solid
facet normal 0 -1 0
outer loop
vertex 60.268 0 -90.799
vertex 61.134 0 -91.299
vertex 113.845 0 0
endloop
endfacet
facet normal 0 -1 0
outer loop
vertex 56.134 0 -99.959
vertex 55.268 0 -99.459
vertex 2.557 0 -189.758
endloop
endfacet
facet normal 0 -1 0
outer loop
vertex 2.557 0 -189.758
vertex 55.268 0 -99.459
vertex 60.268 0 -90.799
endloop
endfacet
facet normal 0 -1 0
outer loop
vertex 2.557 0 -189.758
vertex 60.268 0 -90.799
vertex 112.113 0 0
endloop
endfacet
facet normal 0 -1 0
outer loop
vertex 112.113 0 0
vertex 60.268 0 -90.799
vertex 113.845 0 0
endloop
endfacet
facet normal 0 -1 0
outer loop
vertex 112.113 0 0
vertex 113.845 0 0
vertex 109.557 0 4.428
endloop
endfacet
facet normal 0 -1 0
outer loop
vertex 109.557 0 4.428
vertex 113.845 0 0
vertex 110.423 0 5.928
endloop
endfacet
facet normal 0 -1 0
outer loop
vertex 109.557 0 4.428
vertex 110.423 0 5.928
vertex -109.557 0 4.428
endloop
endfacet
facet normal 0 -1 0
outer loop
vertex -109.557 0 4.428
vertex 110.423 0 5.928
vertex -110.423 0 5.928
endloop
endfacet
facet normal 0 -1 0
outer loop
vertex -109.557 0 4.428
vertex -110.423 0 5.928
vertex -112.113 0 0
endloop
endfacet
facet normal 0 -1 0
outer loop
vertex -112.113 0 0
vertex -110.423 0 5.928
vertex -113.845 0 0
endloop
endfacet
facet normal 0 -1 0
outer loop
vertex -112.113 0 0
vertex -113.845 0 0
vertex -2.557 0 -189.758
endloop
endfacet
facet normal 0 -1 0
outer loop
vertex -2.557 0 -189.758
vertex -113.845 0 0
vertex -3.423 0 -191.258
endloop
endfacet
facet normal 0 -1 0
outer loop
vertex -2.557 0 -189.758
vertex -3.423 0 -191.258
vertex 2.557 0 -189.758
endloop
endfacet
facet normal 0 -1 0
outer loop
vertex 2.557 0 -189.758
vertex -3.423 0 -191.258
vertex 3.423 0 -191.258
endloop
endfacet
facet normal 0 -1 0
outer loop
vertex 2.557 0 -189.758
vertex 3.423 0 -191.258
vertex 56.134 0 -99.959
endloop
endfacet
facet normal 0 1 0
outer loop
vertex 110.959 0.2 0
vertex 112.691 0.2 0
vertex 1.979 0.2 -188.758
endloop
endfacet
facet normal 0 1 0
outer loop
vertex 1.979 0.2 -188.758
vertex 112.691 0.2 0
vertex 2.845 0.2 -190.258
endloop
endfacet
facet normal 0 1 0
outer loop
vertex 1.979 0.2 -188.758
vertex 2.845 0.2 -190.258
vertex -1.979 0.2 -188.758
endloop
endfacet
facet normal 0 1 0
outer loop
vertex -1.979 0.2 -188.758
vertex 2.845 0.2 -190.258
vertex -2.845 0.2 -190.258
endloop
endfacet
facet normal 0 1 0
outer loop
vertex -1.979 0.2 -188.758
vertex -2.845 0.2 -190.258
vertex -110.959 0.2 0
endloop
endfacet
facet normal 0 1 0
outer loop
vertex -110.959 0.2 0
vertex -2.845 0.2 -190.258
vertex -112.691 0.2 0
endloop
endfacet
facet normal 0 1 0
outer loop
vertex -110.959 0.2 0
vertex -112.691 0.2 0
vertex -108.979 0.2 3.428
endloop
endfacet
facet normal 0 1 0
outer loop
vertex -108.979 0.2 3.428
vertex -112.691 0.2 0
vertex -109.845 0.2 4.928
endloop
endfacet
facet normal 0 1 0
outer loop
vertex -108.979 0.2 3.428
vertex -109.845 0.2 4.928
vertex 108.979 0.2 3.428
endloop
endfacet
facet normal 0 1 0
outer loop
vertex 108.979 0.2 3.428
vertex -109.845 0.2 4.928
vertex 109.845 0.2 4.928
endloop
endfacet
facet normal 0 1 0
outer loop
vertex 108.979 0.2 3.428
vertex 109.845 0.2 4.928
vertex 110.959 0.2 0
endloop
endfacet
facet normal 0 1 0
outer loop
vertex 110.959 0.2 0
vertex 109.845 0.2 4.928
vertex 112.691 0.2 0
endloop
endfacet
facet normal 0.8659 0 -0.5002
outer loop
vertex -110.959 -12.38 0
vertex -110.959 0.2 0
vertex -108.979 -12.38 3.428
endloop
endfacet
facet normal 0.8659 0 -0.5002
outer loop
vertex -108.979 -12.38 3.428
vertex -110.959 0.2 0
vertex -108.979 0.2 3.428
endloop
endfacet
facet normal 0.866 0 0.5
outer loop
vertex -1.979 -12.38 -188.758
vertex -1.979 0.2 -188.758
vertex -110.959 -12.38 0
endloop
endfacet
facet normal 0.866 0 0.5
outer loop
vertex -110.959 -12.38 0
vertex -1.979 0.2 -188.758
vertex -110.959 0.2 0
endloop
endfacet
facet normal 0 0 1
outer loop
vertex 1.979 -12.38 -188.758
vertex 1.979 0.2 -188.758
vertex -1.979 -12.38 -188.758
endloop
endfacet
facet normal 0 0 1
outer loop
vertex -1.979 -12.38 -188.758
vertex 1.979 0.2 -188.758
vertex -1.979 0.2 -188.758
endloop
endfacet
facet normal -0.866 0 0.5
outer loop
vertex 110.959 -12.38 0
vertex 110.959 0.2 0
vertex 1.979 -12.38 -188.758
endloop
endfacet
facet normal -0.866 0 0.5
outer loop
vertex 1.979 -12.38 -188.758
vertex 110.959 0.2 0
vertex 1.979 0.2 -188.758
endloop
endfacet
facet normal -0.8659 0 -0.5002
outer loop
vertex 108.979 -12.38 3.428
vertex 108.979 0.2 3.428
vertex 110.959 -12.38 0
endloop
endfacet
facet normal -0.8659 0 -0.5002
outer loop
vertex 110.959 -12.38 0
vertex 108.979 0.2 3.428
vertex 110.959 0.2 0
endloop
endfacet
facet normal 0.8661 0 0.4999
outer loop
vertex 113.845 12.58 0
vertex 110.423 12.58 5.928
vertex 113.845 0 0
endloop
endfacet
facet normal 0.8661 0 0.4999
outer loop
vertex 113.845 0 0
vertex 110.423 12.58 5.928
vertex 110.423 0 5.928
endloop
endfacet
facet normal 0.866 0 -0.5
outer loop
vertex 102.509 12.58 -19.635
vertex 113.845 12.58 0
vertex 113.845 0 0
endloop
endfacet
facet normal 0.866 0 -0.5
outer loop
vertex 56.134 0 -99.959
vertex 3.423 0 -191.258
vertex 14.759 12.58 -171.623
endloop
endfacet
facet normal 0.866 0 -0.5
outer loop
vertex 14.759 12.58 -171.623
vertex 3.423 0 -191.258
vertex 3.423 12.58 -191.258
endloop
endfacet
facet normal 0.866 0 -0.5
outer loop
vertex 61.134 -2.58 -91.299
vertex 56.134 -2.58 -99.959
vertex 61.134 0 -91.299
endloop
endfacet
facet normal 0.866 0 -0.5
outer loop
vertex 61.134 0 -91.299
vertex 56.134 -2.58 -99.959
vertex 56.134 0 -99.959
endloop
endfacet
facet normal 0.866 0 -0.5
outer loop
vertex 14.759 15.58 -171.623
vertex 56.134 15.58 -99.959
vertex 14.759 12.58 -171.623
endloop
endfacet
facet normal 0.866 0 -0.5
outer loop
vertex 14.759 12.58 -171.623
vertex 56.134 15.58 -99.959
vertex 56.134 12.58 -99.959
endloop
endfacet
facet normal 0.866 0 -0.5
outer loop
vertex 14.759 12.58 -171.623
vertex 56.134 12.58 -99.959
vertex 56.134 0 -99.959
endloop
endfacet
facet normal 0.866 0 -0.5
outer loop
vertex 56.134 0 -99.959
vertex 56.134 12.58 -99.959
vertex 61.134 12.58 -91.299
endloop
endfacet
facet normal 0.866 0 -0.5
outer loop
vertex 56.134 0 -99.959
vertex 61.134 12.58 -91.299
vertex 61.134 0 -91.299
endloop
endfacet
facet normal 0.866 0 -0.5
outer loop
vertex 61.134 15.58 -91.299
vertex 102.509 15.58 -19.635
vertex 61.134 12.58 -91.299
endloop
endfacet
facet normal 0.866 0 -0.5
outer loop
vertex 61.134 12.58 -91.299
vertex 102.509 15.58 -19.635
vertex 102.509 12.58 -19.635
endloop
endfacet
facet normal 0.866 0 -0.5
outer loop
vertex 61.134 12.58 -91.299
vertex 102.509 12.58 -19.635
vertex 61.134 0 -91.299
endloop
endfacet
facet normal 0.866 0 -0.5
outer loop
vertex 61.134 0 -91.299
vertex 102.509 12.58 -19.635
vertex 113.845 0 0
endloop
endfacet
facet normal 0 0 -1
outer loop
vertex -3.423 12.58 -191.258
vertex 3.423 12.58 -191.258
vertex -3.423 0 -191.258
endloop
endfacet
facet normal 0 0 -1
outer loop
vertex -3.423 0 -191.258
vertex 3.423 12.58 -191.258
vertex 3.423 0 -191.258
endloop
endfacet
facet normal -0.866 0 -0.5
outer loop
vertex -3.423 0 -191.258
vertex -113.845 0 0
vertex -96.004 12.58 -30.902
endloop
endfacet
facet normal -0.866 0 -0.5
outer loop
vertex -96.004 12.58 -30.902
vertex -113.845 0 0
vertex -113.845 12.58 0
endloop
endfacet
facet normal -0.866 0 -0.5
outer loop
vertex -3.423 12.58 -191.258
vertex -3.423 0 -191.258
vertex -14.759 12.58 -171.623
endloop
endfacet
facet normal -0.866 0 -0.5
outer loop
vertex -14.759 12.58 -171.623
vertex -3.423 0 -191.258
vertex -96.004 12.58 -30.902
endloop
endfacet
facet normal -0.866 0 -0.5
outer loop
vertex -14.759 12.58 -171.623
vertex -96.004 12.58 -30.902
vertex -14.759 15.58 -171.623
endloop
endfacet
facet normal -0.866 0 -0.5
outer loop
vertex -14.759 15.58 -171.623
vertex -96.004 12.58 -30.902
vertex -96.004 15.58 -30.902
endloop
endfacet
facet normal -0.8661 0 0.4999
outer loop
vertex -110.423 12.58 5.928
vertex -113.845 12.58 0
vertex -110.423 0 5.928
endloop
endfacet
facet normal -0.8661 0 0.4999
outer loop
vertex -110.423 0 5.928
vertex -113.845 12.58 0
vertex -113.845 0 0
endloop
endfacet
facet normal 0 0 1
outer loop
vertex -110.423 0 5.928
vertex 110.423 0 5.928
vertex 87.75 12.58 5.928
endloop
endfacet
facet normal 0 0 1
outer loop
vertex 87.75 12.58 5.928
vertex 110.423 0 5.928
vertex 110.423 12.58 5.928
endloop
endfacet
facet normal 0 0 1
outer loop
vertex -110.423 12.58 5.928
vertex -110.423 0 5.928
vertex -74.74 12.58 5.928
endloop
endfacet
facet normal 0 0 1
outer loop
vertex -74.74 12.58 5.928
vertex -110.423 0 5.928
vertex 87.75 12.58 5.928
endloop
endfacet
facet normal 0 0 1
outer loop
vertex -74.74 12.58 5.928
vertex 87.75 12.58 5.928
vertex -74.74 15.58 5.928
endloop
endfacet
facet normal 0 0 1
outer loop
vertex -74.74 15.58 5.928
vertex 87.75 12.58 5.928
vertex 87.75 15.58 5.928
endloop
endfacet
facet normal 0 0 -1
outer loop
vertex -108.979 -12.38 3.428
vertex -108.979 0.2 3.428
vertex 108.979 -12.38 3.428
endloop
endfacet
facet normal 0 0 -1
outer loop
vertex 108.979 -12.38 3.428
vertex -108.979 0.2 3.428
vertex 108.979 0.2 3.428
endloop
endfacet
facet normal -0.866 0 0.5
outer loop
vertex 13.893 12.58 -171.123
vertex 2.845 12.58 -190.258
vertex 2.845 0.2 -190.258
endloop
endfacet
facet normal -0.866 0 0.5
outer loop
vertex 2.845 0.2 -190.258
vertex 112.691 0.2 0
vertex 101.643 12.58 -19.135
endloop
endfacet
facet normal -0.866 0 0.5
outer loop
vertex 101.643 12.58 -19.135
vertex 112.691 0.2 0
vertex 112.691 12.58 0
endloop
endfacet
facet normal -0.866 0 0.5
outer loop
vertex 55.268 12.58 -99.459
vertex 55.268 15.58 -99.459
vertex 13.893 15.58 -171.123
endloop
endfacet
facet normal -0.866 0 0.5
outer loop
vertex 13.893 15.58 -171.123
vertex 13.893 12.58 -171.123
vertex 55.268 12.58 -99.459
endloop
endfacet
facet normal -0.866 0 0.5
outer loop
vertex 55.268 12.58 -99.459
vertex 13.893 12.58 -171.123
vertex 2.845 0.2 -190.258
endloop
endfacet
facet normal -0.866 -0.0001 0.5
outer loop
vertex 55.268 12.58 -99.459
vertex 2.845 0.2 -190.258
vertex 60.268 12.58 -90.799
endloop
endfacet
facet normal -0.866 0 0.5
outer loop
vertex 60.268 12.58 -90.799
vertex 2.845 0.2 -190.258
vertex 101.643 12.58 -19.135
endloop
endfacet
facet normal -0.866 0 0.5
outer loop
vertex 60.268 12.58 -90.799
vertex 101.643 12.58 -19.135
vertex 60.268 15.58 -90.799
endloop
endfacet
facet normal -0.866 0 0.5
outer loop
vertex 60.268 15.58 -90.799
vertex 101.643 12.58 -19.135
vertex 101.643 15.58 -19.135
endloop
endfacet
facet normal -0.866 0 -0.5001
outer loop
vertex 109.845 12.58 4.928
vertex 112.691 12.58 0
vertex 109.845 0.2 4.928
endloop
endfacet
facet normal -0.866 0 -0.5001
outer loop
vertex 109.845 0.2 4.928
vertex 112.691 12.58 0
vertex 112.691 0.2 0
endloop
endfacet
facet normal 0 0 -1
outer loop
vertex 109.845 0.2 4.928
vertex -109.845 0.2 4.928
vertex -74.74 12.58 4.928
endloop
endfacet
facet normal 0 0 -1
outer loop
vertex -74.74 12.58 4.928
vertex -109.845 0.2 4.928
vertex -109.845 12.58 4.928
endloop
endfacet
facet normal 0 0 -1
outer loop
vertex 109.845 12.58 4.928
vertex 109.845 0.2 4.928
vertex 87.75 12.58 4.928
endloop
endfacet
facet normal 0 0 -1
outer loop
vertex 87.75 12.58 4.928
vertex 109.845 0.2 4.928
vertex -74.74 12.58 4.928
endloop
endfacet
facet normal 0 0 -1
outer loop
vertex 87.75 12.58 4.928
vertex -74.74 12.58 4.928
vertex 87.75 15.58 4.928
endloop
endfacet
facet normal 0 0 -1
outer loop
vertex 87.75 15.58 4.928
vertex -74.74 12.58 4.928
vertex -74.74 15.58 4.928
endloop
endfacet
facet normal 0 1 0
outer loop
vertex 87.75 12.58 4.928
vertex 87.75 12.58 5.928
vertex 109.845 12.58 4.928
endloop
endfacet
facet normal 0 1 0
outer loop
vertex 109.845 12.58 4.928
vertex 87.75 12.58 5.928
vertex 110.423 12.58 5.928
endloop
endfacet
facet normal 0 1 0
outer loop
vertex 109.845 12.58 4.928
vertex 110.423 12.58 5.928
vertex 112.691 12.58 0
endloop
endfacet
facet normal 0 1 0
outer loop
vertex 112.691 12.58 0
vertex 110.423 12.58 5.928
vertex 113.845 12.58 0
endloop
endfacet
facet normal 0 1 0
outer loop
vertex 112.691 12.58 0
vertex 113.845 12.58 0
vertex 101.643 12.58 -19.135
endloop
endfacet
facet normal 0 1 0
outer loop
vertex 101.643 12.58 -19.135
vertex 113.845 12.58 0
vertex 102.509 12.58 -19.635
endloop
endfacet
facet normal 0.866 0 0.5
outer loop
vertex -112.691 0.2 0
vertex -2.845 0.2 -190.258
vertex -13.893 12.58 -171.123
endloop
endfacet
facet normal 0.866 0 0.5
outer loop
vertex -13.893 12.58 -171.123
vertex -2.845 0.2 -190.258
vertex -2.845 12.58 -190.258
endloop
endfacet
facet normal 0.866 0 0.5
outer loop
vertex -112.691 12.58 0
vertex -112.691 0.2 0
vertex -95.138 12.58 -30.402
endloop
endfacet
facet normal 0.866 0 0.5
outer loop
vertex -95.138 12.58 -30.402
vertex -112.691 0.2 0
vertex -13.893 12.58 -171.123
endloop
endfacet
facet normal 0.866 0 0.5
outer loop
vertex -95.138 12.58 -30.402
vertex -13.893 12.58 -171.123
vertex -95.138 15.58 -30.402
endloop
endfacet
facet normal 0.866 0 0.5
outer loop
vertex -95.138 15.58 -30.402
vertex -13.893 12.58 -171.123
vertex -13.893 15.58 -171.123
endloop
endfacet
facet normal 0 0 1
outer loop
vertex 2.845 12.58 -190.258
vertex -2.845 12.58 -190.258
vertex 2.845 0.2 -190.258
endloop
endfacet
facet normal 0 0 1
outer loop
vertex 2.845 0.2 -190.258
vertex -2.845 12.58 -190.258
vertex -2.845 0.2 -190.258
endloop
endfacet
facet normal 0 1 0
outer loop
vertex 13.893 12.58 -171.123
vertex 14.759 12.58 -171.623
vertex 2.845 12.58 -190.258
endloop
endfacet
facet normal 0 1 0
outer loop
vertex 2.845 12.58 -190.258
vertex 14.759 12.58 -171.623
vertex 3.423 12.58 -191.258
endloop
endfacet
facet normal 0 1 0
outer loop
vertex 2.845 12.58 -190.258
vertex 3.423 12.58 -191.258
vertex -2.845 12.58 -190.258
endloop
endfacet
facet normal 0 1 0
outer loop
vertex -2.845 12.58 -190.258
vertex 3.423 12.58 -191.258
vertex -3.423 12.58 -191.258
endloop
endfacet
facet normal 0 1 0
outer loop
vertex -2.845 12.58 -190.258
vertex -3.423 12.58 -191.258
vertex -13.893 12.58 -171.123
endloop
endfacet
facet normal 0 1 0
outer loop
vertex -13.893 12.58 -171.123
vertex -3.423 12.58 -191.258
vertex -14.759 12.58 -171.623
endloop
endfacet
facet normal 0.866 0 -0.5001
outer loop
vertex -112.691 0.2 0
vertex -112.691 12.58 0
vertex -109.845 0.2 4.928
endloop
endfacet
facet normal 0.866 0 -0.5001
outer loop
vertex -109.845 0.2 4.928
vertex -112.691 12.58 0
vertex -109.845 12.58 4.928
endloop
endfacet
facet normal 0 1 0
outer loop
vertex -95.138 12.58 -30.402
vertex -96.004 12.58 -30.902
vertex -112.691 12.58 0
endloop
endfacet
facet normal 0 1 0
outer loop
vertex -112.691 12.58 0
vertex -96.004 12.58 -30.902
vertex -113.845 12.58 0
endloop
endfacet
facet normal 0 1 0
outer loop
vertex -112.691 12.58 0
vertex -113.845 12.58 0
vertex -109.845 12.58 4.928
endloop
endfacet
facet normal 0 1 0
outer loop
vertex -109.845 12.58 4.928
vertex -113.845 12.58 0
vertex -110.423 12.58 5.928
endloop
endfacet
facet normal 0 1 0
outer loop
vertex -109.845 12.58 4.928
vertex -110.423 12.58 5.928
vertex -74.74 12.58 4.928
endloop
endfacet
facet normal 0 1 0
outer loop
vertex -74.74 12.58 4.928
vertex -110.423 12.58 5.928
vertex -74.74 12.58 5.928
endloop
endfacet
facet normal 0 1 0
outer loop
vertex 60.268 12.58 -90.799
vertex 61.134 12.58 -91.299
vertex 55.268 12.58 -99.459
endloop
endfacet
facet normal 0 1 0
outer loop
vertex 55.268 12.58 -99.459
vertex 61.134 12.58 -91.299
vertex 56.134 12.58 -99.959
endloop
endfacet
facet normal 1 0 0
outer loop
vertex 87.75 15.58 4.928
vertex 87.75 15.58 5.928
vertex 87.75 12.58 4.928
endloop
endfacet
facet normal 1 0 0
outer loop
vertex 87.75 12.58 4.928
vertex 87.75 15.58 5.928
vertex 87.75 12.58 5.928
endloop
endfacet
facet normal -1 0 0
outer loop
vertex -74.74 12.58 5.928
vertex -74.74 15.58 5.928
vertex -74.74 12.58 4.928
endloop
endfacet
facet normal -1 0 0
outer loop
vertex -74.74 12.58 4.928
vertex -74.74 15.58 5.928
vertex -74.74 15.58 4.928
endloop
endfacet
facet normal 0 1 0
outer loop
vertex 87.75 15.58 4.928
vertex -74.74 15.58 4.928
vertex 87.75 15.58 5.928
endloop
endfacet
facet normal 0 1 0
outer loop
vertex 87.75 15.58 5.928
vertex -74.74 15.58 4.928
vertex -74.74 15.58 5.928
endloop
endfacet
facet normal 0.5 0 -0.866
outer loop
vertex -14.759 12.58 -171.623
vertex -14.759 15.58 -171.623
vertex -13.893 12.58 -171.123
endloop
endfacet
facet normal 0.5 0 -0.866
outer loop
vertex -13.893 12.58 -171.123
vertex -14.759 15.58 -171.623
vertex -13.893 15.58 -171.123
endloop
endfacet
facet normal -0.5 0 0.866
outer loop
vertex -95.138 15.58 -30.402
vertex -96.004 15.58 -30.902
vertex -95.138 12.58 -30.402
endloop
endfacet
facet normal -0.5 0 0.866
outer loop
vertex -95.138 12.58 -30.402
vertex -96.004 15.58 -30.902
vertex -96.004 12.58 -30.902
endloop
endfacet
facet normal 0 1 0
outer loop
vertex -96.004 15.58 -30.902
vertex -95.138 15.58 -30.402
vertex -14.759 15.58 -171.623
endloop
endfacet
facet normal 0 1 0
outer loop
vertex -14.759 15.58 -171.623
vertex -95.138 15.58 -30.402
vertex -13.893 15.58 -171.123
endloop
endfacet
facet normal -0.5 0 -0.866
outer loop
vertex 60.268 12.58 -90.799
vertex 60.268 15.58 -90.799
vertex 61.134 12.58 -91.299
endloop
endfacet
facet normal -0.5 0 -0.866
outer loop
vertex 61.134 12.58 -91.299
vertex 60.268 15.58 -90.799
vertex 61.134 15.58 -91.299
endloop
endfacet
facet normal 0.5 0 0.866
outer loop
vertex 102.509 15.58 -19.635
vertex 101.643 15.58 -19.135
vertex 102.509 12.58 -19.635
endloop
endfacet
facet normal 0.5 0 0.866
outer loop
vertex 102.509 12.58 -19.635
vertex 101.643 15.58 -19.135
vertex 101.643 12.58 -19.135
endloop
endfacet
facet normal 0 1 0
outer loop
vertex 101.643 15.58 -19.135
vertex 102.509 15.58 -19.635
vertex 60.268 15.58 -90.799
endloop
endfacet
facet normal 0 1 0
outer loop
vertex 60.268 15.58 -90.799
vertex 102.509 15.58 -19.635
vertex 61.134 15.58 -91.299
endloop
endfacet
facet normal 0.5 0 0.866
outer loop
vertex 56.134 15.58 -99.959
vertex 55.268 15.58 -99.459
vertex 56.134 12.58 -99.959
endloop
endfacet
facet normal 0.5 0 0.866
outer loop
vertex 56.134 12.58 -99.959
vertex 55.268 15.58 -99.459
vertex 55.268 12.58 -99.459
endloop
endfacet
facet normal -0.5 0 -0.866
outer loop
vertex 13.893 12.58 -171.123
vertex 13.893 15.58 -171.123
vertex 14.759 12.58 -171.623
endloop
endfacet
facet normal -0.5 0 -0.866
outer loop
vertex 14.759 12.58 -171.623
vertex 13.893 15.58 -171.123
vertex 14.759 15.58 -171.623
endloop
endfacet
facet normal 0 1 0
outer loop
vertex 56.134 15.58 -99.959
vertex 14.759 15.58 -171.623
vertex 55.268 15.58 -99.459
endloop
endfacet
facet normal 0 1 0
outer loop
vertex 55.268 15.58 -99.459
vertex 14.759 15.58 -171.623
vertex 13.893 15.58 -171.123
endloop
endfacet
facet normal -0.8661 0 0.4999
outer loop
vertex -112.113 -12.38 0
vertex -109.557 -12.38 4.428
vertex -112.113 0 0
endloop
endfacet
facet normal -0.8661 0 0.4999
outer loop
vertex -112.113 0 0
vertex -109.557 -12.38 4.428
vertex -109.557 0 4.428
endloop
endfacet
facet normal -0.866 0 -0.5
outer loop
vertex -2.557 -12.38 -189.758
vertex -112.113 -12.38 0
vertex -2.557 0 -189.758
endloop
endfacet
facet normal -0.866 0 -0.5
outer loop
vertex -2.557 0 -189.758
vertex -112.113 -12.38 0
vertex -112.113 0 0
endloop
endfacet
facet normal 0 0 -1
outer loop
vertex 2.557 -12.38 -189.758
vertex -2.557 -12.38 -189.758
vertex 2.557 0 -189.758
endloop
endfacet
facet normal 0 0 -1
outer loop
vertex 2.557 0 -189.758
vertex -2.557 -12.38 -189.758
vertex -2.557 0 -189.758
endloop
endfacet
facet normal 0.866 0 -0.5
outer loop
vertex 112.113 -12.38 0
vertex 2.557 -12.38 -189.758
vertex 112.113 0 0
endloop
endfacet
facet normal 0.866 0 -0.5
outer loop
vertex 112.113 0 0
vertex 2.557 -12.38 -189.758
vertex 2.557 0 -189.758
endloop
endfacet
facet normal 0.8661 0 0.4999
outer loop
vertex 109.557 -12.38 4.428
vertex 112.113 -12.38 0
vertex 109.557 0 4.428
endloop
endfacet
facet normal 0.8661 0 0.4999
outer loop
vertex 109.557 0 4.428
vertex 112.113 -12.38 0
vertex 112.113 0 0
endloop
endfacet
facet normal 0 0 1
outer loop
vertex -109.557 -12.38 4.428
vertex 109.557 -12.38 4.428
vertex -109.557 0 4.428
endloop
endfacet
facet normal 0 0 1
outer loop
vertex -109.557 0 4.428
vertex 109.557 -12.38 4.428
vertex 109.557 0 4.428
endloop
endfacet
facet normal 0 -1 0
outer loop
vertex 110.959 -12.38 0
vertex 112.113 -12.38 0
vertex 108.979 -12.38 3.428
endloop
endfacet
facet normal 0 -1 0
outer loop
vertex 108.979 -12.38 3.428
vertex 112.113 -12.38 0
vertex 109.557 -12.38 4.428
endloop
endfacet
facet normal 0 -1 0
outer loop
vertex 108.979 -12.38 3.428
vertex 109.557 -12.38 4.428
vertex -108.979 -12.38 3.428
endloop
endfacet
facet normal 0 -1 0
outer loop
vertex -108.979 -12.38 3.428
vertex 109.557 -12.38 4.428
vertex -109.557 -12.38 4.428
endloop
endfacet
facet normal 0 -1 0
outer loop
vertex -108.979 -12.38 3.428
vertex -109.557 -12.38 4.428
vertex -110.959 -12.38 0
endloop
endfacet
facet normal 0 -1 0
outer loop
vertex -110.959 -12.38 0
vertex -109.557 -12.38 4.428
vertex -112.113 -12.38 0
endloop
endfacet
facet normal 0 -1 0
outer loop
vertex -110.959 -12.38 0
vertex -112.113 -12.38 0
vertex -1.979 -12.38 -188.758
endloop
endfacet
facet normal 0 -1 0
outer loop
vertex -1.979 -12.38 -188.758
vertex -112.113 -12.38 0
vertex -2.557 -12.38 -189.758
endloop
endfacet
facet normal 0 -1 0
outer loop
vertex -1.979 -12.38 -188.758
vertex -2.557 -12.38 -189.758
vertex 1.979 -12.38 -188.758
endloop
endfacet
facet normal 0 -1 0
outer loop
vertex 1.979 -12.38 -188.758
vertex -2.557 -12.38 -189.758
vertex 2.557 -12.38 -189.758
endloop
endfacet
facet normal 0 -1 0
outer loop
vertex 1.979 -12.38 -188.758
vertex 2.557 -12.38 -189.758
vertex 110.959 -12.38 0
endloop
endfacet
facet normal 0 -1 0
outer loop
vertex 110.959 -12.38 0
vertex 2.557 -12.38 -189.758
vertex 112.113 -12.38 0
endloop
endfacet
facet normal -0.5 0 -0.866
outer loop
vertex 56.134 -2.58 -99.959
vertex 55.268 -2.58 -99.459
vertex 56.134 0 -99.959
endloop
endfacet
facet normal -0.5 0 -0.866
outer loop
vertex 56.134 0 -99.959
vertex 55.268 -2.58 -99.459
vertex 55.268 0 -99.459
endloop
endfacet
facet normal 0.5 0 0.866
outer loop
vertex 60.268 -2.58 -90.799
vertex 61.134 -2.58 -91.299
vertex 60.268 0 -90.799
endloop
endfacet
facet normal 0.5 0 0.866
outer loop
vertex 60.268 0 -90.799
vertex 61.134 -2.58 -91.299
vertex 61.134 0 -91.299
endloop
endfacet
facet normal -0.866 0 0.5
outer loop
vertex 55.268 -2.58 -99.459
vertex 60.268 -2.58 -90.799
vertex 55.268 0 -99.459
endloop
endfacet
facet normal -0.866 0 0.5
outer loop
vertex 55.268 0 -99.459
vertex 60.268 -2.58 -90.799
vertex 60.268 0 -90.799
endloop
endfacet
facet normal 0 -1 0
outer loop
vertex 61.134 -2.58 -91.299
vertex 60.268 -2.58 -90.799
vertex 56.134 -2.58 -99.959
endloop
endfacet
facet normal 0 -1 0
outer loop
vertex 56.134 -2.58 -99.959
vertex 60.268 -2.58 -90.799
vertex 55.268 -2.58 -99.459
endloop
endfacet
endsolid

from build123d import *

# Parameters (mm, degrees)
BOSS_EXTRUDE1_DEPTH = 0.2
BOSS_EXTRUDE2_DEPTH = 12.58
SKETCH1_8_W         = 162.49
SKETCH1_8_H         = 1
BOSS_EXTRUDE3_DEPTH = 15.58
BOSS_EXTRUDE4_DEPTH = 12.38
BOSS_EXTRUDE5_DEPTH = 2.58


with BuildPart() as part:
    # Sketch1 → Boss-Extrude1 (new body)
    with BuildSketch(Plane(origin=(0, 0, 0), x_dir=(1, 0, 0), z_dir=(0, 1, 0))):
        Polygon((-113.845299462, 0), (-110.422649731, -5.92820323), (110.422649731, -5.92820323), (113.845299462, 0), (3.422649731, 191.25763964), (-3.422649731, 191.25763964), align=None)
        Polygon((108.979274058, -3.42820323), (-108.979274058, -3.42820323), (-110.958548116, 0), (-1.979274058, 188.75763964), (1.979274058, 188.75763964), (110.958548116, 0), align=None, mode=Mode.SUBTRACT)
    extrude(amount=BOSS_EXTRUDE1_DEPTH)

    # Sketch1<7> → Boss-Extrude2 (add)
    with BuildSketch(Plane(origin=(0, 0, 0), x_dir=(1, 0, 0), z_dir=(0, 1, 0))):
        Polygon((-95.137949192, 30.402081141), (-96.003974596, 30.902081141), (-113.845299462, 0), (-110.422649731, -5.92820323), (-74.74, -5.92820323), (-74.74, -4.92820323), (-109.845299462, -4.92820323), (-112.690598923, 0), align=None)
        Polygon((-3.422649731, 191.25763964), (-14.758974596, 171.622549002), (-13.892949192, 171.122549002), (-2.845299462, 190.25763964), (2.845299462, 190.25763964), (13.892949192, 171.122549002), (14.758974596, 171.622549002), (3.422649731, 191.25763964), align=None)
        Polygon((109.845299462, -4.92820323), (87.75, -4.92820323), (87.75, -5.92820323), (110.422649731, -5.92820323), (113.845299462, 0), (102.508974596, 19.635090638), (101.642949192, 19.135090638), (112.690598923, 0), align=None)
        Polygon((61.133974596, 91.298692801), (56.133974596, 99.958946839), (55.267949192, 99.458946839), (60.267949192, 90.798692801), align=None)
    extrude(amount=BOSS_EXTRUDE2_DEPTH)

    # Sketch1<8> → Boss-Extrude3 (add)
    with BuildSketch(Plane(origin=(0, 0, 0), x_dir=(1, 0, 0), z_dir=(0, 1, 0))):
        Polygon((-14.758974596, 171.622549002), (-96.003974596, 30.902081141), (-95.137949192, 30.402081141), (-13.892949192, 171.122549002), align=None)
        with Locations((6.505, -5.42820323)):
            Rectangle(SKETCH1_8_W, SKETCH1_8_H)
        Polygon((56.133974596, 99.958946839), (14.758974596, 171.622549002), (13.892949192, 171.122549002), (55.267949192, 99.458946839), align=None)
        Polygon((102.508974596, 19.635090638), (61.133974596, 91.298692801), (60.267949192, 90.798692801), (101.642949192, 19.135090638), align=None)
    extrude(amount=BOSS_EXTRUDE3_DEPTH)

    # Sketch1<9> → Boss-Extrude4 (add)
    with BuildSketch(Plane(origin=(0, 0, 0), x_dir=(1, 0, 0), z_dir=(0, 1, 0))):
        Polygon((-112.113248654, 0), (-110.834936491, -2.214101615), (-109.556624327, -4.42820323), (109.556624327, -4.42820323), (112.113248654, 0), (2.556624327, 189.75763964), (-2.556624327, 189.75763964), align=None)
        Polygon((-110.958548116, 0), (-56.468911087, 94.37881982), (-1.979274058, 188.75763964), (1.979274058, 188.75763964), (110.958548116, 0), (108.979274058, -3.42820323), (-108.979274058, -3.42820323), align=None, mode=Mode.SUBTRACT)
    extrude(amount=-BOSS_EXTRUDE4_DEPTH)

    # Sketch1<10> → Boss-Extrude5 (add)
    with BuildSketch(Plane(origin=(0, 0, 0), x_dir=(1, 0, 0), z_dir=(0, 1, 0))):
        Polygon((61.133974596, 91.298692801), (56.133974596, 99.958946839), (55.267949192, 99.458946839), (60.267949192, 90.798692801), align=None)
    extrude(amount=-BOSS_EXTRUDE5_DEPTH)


solid = part.part
